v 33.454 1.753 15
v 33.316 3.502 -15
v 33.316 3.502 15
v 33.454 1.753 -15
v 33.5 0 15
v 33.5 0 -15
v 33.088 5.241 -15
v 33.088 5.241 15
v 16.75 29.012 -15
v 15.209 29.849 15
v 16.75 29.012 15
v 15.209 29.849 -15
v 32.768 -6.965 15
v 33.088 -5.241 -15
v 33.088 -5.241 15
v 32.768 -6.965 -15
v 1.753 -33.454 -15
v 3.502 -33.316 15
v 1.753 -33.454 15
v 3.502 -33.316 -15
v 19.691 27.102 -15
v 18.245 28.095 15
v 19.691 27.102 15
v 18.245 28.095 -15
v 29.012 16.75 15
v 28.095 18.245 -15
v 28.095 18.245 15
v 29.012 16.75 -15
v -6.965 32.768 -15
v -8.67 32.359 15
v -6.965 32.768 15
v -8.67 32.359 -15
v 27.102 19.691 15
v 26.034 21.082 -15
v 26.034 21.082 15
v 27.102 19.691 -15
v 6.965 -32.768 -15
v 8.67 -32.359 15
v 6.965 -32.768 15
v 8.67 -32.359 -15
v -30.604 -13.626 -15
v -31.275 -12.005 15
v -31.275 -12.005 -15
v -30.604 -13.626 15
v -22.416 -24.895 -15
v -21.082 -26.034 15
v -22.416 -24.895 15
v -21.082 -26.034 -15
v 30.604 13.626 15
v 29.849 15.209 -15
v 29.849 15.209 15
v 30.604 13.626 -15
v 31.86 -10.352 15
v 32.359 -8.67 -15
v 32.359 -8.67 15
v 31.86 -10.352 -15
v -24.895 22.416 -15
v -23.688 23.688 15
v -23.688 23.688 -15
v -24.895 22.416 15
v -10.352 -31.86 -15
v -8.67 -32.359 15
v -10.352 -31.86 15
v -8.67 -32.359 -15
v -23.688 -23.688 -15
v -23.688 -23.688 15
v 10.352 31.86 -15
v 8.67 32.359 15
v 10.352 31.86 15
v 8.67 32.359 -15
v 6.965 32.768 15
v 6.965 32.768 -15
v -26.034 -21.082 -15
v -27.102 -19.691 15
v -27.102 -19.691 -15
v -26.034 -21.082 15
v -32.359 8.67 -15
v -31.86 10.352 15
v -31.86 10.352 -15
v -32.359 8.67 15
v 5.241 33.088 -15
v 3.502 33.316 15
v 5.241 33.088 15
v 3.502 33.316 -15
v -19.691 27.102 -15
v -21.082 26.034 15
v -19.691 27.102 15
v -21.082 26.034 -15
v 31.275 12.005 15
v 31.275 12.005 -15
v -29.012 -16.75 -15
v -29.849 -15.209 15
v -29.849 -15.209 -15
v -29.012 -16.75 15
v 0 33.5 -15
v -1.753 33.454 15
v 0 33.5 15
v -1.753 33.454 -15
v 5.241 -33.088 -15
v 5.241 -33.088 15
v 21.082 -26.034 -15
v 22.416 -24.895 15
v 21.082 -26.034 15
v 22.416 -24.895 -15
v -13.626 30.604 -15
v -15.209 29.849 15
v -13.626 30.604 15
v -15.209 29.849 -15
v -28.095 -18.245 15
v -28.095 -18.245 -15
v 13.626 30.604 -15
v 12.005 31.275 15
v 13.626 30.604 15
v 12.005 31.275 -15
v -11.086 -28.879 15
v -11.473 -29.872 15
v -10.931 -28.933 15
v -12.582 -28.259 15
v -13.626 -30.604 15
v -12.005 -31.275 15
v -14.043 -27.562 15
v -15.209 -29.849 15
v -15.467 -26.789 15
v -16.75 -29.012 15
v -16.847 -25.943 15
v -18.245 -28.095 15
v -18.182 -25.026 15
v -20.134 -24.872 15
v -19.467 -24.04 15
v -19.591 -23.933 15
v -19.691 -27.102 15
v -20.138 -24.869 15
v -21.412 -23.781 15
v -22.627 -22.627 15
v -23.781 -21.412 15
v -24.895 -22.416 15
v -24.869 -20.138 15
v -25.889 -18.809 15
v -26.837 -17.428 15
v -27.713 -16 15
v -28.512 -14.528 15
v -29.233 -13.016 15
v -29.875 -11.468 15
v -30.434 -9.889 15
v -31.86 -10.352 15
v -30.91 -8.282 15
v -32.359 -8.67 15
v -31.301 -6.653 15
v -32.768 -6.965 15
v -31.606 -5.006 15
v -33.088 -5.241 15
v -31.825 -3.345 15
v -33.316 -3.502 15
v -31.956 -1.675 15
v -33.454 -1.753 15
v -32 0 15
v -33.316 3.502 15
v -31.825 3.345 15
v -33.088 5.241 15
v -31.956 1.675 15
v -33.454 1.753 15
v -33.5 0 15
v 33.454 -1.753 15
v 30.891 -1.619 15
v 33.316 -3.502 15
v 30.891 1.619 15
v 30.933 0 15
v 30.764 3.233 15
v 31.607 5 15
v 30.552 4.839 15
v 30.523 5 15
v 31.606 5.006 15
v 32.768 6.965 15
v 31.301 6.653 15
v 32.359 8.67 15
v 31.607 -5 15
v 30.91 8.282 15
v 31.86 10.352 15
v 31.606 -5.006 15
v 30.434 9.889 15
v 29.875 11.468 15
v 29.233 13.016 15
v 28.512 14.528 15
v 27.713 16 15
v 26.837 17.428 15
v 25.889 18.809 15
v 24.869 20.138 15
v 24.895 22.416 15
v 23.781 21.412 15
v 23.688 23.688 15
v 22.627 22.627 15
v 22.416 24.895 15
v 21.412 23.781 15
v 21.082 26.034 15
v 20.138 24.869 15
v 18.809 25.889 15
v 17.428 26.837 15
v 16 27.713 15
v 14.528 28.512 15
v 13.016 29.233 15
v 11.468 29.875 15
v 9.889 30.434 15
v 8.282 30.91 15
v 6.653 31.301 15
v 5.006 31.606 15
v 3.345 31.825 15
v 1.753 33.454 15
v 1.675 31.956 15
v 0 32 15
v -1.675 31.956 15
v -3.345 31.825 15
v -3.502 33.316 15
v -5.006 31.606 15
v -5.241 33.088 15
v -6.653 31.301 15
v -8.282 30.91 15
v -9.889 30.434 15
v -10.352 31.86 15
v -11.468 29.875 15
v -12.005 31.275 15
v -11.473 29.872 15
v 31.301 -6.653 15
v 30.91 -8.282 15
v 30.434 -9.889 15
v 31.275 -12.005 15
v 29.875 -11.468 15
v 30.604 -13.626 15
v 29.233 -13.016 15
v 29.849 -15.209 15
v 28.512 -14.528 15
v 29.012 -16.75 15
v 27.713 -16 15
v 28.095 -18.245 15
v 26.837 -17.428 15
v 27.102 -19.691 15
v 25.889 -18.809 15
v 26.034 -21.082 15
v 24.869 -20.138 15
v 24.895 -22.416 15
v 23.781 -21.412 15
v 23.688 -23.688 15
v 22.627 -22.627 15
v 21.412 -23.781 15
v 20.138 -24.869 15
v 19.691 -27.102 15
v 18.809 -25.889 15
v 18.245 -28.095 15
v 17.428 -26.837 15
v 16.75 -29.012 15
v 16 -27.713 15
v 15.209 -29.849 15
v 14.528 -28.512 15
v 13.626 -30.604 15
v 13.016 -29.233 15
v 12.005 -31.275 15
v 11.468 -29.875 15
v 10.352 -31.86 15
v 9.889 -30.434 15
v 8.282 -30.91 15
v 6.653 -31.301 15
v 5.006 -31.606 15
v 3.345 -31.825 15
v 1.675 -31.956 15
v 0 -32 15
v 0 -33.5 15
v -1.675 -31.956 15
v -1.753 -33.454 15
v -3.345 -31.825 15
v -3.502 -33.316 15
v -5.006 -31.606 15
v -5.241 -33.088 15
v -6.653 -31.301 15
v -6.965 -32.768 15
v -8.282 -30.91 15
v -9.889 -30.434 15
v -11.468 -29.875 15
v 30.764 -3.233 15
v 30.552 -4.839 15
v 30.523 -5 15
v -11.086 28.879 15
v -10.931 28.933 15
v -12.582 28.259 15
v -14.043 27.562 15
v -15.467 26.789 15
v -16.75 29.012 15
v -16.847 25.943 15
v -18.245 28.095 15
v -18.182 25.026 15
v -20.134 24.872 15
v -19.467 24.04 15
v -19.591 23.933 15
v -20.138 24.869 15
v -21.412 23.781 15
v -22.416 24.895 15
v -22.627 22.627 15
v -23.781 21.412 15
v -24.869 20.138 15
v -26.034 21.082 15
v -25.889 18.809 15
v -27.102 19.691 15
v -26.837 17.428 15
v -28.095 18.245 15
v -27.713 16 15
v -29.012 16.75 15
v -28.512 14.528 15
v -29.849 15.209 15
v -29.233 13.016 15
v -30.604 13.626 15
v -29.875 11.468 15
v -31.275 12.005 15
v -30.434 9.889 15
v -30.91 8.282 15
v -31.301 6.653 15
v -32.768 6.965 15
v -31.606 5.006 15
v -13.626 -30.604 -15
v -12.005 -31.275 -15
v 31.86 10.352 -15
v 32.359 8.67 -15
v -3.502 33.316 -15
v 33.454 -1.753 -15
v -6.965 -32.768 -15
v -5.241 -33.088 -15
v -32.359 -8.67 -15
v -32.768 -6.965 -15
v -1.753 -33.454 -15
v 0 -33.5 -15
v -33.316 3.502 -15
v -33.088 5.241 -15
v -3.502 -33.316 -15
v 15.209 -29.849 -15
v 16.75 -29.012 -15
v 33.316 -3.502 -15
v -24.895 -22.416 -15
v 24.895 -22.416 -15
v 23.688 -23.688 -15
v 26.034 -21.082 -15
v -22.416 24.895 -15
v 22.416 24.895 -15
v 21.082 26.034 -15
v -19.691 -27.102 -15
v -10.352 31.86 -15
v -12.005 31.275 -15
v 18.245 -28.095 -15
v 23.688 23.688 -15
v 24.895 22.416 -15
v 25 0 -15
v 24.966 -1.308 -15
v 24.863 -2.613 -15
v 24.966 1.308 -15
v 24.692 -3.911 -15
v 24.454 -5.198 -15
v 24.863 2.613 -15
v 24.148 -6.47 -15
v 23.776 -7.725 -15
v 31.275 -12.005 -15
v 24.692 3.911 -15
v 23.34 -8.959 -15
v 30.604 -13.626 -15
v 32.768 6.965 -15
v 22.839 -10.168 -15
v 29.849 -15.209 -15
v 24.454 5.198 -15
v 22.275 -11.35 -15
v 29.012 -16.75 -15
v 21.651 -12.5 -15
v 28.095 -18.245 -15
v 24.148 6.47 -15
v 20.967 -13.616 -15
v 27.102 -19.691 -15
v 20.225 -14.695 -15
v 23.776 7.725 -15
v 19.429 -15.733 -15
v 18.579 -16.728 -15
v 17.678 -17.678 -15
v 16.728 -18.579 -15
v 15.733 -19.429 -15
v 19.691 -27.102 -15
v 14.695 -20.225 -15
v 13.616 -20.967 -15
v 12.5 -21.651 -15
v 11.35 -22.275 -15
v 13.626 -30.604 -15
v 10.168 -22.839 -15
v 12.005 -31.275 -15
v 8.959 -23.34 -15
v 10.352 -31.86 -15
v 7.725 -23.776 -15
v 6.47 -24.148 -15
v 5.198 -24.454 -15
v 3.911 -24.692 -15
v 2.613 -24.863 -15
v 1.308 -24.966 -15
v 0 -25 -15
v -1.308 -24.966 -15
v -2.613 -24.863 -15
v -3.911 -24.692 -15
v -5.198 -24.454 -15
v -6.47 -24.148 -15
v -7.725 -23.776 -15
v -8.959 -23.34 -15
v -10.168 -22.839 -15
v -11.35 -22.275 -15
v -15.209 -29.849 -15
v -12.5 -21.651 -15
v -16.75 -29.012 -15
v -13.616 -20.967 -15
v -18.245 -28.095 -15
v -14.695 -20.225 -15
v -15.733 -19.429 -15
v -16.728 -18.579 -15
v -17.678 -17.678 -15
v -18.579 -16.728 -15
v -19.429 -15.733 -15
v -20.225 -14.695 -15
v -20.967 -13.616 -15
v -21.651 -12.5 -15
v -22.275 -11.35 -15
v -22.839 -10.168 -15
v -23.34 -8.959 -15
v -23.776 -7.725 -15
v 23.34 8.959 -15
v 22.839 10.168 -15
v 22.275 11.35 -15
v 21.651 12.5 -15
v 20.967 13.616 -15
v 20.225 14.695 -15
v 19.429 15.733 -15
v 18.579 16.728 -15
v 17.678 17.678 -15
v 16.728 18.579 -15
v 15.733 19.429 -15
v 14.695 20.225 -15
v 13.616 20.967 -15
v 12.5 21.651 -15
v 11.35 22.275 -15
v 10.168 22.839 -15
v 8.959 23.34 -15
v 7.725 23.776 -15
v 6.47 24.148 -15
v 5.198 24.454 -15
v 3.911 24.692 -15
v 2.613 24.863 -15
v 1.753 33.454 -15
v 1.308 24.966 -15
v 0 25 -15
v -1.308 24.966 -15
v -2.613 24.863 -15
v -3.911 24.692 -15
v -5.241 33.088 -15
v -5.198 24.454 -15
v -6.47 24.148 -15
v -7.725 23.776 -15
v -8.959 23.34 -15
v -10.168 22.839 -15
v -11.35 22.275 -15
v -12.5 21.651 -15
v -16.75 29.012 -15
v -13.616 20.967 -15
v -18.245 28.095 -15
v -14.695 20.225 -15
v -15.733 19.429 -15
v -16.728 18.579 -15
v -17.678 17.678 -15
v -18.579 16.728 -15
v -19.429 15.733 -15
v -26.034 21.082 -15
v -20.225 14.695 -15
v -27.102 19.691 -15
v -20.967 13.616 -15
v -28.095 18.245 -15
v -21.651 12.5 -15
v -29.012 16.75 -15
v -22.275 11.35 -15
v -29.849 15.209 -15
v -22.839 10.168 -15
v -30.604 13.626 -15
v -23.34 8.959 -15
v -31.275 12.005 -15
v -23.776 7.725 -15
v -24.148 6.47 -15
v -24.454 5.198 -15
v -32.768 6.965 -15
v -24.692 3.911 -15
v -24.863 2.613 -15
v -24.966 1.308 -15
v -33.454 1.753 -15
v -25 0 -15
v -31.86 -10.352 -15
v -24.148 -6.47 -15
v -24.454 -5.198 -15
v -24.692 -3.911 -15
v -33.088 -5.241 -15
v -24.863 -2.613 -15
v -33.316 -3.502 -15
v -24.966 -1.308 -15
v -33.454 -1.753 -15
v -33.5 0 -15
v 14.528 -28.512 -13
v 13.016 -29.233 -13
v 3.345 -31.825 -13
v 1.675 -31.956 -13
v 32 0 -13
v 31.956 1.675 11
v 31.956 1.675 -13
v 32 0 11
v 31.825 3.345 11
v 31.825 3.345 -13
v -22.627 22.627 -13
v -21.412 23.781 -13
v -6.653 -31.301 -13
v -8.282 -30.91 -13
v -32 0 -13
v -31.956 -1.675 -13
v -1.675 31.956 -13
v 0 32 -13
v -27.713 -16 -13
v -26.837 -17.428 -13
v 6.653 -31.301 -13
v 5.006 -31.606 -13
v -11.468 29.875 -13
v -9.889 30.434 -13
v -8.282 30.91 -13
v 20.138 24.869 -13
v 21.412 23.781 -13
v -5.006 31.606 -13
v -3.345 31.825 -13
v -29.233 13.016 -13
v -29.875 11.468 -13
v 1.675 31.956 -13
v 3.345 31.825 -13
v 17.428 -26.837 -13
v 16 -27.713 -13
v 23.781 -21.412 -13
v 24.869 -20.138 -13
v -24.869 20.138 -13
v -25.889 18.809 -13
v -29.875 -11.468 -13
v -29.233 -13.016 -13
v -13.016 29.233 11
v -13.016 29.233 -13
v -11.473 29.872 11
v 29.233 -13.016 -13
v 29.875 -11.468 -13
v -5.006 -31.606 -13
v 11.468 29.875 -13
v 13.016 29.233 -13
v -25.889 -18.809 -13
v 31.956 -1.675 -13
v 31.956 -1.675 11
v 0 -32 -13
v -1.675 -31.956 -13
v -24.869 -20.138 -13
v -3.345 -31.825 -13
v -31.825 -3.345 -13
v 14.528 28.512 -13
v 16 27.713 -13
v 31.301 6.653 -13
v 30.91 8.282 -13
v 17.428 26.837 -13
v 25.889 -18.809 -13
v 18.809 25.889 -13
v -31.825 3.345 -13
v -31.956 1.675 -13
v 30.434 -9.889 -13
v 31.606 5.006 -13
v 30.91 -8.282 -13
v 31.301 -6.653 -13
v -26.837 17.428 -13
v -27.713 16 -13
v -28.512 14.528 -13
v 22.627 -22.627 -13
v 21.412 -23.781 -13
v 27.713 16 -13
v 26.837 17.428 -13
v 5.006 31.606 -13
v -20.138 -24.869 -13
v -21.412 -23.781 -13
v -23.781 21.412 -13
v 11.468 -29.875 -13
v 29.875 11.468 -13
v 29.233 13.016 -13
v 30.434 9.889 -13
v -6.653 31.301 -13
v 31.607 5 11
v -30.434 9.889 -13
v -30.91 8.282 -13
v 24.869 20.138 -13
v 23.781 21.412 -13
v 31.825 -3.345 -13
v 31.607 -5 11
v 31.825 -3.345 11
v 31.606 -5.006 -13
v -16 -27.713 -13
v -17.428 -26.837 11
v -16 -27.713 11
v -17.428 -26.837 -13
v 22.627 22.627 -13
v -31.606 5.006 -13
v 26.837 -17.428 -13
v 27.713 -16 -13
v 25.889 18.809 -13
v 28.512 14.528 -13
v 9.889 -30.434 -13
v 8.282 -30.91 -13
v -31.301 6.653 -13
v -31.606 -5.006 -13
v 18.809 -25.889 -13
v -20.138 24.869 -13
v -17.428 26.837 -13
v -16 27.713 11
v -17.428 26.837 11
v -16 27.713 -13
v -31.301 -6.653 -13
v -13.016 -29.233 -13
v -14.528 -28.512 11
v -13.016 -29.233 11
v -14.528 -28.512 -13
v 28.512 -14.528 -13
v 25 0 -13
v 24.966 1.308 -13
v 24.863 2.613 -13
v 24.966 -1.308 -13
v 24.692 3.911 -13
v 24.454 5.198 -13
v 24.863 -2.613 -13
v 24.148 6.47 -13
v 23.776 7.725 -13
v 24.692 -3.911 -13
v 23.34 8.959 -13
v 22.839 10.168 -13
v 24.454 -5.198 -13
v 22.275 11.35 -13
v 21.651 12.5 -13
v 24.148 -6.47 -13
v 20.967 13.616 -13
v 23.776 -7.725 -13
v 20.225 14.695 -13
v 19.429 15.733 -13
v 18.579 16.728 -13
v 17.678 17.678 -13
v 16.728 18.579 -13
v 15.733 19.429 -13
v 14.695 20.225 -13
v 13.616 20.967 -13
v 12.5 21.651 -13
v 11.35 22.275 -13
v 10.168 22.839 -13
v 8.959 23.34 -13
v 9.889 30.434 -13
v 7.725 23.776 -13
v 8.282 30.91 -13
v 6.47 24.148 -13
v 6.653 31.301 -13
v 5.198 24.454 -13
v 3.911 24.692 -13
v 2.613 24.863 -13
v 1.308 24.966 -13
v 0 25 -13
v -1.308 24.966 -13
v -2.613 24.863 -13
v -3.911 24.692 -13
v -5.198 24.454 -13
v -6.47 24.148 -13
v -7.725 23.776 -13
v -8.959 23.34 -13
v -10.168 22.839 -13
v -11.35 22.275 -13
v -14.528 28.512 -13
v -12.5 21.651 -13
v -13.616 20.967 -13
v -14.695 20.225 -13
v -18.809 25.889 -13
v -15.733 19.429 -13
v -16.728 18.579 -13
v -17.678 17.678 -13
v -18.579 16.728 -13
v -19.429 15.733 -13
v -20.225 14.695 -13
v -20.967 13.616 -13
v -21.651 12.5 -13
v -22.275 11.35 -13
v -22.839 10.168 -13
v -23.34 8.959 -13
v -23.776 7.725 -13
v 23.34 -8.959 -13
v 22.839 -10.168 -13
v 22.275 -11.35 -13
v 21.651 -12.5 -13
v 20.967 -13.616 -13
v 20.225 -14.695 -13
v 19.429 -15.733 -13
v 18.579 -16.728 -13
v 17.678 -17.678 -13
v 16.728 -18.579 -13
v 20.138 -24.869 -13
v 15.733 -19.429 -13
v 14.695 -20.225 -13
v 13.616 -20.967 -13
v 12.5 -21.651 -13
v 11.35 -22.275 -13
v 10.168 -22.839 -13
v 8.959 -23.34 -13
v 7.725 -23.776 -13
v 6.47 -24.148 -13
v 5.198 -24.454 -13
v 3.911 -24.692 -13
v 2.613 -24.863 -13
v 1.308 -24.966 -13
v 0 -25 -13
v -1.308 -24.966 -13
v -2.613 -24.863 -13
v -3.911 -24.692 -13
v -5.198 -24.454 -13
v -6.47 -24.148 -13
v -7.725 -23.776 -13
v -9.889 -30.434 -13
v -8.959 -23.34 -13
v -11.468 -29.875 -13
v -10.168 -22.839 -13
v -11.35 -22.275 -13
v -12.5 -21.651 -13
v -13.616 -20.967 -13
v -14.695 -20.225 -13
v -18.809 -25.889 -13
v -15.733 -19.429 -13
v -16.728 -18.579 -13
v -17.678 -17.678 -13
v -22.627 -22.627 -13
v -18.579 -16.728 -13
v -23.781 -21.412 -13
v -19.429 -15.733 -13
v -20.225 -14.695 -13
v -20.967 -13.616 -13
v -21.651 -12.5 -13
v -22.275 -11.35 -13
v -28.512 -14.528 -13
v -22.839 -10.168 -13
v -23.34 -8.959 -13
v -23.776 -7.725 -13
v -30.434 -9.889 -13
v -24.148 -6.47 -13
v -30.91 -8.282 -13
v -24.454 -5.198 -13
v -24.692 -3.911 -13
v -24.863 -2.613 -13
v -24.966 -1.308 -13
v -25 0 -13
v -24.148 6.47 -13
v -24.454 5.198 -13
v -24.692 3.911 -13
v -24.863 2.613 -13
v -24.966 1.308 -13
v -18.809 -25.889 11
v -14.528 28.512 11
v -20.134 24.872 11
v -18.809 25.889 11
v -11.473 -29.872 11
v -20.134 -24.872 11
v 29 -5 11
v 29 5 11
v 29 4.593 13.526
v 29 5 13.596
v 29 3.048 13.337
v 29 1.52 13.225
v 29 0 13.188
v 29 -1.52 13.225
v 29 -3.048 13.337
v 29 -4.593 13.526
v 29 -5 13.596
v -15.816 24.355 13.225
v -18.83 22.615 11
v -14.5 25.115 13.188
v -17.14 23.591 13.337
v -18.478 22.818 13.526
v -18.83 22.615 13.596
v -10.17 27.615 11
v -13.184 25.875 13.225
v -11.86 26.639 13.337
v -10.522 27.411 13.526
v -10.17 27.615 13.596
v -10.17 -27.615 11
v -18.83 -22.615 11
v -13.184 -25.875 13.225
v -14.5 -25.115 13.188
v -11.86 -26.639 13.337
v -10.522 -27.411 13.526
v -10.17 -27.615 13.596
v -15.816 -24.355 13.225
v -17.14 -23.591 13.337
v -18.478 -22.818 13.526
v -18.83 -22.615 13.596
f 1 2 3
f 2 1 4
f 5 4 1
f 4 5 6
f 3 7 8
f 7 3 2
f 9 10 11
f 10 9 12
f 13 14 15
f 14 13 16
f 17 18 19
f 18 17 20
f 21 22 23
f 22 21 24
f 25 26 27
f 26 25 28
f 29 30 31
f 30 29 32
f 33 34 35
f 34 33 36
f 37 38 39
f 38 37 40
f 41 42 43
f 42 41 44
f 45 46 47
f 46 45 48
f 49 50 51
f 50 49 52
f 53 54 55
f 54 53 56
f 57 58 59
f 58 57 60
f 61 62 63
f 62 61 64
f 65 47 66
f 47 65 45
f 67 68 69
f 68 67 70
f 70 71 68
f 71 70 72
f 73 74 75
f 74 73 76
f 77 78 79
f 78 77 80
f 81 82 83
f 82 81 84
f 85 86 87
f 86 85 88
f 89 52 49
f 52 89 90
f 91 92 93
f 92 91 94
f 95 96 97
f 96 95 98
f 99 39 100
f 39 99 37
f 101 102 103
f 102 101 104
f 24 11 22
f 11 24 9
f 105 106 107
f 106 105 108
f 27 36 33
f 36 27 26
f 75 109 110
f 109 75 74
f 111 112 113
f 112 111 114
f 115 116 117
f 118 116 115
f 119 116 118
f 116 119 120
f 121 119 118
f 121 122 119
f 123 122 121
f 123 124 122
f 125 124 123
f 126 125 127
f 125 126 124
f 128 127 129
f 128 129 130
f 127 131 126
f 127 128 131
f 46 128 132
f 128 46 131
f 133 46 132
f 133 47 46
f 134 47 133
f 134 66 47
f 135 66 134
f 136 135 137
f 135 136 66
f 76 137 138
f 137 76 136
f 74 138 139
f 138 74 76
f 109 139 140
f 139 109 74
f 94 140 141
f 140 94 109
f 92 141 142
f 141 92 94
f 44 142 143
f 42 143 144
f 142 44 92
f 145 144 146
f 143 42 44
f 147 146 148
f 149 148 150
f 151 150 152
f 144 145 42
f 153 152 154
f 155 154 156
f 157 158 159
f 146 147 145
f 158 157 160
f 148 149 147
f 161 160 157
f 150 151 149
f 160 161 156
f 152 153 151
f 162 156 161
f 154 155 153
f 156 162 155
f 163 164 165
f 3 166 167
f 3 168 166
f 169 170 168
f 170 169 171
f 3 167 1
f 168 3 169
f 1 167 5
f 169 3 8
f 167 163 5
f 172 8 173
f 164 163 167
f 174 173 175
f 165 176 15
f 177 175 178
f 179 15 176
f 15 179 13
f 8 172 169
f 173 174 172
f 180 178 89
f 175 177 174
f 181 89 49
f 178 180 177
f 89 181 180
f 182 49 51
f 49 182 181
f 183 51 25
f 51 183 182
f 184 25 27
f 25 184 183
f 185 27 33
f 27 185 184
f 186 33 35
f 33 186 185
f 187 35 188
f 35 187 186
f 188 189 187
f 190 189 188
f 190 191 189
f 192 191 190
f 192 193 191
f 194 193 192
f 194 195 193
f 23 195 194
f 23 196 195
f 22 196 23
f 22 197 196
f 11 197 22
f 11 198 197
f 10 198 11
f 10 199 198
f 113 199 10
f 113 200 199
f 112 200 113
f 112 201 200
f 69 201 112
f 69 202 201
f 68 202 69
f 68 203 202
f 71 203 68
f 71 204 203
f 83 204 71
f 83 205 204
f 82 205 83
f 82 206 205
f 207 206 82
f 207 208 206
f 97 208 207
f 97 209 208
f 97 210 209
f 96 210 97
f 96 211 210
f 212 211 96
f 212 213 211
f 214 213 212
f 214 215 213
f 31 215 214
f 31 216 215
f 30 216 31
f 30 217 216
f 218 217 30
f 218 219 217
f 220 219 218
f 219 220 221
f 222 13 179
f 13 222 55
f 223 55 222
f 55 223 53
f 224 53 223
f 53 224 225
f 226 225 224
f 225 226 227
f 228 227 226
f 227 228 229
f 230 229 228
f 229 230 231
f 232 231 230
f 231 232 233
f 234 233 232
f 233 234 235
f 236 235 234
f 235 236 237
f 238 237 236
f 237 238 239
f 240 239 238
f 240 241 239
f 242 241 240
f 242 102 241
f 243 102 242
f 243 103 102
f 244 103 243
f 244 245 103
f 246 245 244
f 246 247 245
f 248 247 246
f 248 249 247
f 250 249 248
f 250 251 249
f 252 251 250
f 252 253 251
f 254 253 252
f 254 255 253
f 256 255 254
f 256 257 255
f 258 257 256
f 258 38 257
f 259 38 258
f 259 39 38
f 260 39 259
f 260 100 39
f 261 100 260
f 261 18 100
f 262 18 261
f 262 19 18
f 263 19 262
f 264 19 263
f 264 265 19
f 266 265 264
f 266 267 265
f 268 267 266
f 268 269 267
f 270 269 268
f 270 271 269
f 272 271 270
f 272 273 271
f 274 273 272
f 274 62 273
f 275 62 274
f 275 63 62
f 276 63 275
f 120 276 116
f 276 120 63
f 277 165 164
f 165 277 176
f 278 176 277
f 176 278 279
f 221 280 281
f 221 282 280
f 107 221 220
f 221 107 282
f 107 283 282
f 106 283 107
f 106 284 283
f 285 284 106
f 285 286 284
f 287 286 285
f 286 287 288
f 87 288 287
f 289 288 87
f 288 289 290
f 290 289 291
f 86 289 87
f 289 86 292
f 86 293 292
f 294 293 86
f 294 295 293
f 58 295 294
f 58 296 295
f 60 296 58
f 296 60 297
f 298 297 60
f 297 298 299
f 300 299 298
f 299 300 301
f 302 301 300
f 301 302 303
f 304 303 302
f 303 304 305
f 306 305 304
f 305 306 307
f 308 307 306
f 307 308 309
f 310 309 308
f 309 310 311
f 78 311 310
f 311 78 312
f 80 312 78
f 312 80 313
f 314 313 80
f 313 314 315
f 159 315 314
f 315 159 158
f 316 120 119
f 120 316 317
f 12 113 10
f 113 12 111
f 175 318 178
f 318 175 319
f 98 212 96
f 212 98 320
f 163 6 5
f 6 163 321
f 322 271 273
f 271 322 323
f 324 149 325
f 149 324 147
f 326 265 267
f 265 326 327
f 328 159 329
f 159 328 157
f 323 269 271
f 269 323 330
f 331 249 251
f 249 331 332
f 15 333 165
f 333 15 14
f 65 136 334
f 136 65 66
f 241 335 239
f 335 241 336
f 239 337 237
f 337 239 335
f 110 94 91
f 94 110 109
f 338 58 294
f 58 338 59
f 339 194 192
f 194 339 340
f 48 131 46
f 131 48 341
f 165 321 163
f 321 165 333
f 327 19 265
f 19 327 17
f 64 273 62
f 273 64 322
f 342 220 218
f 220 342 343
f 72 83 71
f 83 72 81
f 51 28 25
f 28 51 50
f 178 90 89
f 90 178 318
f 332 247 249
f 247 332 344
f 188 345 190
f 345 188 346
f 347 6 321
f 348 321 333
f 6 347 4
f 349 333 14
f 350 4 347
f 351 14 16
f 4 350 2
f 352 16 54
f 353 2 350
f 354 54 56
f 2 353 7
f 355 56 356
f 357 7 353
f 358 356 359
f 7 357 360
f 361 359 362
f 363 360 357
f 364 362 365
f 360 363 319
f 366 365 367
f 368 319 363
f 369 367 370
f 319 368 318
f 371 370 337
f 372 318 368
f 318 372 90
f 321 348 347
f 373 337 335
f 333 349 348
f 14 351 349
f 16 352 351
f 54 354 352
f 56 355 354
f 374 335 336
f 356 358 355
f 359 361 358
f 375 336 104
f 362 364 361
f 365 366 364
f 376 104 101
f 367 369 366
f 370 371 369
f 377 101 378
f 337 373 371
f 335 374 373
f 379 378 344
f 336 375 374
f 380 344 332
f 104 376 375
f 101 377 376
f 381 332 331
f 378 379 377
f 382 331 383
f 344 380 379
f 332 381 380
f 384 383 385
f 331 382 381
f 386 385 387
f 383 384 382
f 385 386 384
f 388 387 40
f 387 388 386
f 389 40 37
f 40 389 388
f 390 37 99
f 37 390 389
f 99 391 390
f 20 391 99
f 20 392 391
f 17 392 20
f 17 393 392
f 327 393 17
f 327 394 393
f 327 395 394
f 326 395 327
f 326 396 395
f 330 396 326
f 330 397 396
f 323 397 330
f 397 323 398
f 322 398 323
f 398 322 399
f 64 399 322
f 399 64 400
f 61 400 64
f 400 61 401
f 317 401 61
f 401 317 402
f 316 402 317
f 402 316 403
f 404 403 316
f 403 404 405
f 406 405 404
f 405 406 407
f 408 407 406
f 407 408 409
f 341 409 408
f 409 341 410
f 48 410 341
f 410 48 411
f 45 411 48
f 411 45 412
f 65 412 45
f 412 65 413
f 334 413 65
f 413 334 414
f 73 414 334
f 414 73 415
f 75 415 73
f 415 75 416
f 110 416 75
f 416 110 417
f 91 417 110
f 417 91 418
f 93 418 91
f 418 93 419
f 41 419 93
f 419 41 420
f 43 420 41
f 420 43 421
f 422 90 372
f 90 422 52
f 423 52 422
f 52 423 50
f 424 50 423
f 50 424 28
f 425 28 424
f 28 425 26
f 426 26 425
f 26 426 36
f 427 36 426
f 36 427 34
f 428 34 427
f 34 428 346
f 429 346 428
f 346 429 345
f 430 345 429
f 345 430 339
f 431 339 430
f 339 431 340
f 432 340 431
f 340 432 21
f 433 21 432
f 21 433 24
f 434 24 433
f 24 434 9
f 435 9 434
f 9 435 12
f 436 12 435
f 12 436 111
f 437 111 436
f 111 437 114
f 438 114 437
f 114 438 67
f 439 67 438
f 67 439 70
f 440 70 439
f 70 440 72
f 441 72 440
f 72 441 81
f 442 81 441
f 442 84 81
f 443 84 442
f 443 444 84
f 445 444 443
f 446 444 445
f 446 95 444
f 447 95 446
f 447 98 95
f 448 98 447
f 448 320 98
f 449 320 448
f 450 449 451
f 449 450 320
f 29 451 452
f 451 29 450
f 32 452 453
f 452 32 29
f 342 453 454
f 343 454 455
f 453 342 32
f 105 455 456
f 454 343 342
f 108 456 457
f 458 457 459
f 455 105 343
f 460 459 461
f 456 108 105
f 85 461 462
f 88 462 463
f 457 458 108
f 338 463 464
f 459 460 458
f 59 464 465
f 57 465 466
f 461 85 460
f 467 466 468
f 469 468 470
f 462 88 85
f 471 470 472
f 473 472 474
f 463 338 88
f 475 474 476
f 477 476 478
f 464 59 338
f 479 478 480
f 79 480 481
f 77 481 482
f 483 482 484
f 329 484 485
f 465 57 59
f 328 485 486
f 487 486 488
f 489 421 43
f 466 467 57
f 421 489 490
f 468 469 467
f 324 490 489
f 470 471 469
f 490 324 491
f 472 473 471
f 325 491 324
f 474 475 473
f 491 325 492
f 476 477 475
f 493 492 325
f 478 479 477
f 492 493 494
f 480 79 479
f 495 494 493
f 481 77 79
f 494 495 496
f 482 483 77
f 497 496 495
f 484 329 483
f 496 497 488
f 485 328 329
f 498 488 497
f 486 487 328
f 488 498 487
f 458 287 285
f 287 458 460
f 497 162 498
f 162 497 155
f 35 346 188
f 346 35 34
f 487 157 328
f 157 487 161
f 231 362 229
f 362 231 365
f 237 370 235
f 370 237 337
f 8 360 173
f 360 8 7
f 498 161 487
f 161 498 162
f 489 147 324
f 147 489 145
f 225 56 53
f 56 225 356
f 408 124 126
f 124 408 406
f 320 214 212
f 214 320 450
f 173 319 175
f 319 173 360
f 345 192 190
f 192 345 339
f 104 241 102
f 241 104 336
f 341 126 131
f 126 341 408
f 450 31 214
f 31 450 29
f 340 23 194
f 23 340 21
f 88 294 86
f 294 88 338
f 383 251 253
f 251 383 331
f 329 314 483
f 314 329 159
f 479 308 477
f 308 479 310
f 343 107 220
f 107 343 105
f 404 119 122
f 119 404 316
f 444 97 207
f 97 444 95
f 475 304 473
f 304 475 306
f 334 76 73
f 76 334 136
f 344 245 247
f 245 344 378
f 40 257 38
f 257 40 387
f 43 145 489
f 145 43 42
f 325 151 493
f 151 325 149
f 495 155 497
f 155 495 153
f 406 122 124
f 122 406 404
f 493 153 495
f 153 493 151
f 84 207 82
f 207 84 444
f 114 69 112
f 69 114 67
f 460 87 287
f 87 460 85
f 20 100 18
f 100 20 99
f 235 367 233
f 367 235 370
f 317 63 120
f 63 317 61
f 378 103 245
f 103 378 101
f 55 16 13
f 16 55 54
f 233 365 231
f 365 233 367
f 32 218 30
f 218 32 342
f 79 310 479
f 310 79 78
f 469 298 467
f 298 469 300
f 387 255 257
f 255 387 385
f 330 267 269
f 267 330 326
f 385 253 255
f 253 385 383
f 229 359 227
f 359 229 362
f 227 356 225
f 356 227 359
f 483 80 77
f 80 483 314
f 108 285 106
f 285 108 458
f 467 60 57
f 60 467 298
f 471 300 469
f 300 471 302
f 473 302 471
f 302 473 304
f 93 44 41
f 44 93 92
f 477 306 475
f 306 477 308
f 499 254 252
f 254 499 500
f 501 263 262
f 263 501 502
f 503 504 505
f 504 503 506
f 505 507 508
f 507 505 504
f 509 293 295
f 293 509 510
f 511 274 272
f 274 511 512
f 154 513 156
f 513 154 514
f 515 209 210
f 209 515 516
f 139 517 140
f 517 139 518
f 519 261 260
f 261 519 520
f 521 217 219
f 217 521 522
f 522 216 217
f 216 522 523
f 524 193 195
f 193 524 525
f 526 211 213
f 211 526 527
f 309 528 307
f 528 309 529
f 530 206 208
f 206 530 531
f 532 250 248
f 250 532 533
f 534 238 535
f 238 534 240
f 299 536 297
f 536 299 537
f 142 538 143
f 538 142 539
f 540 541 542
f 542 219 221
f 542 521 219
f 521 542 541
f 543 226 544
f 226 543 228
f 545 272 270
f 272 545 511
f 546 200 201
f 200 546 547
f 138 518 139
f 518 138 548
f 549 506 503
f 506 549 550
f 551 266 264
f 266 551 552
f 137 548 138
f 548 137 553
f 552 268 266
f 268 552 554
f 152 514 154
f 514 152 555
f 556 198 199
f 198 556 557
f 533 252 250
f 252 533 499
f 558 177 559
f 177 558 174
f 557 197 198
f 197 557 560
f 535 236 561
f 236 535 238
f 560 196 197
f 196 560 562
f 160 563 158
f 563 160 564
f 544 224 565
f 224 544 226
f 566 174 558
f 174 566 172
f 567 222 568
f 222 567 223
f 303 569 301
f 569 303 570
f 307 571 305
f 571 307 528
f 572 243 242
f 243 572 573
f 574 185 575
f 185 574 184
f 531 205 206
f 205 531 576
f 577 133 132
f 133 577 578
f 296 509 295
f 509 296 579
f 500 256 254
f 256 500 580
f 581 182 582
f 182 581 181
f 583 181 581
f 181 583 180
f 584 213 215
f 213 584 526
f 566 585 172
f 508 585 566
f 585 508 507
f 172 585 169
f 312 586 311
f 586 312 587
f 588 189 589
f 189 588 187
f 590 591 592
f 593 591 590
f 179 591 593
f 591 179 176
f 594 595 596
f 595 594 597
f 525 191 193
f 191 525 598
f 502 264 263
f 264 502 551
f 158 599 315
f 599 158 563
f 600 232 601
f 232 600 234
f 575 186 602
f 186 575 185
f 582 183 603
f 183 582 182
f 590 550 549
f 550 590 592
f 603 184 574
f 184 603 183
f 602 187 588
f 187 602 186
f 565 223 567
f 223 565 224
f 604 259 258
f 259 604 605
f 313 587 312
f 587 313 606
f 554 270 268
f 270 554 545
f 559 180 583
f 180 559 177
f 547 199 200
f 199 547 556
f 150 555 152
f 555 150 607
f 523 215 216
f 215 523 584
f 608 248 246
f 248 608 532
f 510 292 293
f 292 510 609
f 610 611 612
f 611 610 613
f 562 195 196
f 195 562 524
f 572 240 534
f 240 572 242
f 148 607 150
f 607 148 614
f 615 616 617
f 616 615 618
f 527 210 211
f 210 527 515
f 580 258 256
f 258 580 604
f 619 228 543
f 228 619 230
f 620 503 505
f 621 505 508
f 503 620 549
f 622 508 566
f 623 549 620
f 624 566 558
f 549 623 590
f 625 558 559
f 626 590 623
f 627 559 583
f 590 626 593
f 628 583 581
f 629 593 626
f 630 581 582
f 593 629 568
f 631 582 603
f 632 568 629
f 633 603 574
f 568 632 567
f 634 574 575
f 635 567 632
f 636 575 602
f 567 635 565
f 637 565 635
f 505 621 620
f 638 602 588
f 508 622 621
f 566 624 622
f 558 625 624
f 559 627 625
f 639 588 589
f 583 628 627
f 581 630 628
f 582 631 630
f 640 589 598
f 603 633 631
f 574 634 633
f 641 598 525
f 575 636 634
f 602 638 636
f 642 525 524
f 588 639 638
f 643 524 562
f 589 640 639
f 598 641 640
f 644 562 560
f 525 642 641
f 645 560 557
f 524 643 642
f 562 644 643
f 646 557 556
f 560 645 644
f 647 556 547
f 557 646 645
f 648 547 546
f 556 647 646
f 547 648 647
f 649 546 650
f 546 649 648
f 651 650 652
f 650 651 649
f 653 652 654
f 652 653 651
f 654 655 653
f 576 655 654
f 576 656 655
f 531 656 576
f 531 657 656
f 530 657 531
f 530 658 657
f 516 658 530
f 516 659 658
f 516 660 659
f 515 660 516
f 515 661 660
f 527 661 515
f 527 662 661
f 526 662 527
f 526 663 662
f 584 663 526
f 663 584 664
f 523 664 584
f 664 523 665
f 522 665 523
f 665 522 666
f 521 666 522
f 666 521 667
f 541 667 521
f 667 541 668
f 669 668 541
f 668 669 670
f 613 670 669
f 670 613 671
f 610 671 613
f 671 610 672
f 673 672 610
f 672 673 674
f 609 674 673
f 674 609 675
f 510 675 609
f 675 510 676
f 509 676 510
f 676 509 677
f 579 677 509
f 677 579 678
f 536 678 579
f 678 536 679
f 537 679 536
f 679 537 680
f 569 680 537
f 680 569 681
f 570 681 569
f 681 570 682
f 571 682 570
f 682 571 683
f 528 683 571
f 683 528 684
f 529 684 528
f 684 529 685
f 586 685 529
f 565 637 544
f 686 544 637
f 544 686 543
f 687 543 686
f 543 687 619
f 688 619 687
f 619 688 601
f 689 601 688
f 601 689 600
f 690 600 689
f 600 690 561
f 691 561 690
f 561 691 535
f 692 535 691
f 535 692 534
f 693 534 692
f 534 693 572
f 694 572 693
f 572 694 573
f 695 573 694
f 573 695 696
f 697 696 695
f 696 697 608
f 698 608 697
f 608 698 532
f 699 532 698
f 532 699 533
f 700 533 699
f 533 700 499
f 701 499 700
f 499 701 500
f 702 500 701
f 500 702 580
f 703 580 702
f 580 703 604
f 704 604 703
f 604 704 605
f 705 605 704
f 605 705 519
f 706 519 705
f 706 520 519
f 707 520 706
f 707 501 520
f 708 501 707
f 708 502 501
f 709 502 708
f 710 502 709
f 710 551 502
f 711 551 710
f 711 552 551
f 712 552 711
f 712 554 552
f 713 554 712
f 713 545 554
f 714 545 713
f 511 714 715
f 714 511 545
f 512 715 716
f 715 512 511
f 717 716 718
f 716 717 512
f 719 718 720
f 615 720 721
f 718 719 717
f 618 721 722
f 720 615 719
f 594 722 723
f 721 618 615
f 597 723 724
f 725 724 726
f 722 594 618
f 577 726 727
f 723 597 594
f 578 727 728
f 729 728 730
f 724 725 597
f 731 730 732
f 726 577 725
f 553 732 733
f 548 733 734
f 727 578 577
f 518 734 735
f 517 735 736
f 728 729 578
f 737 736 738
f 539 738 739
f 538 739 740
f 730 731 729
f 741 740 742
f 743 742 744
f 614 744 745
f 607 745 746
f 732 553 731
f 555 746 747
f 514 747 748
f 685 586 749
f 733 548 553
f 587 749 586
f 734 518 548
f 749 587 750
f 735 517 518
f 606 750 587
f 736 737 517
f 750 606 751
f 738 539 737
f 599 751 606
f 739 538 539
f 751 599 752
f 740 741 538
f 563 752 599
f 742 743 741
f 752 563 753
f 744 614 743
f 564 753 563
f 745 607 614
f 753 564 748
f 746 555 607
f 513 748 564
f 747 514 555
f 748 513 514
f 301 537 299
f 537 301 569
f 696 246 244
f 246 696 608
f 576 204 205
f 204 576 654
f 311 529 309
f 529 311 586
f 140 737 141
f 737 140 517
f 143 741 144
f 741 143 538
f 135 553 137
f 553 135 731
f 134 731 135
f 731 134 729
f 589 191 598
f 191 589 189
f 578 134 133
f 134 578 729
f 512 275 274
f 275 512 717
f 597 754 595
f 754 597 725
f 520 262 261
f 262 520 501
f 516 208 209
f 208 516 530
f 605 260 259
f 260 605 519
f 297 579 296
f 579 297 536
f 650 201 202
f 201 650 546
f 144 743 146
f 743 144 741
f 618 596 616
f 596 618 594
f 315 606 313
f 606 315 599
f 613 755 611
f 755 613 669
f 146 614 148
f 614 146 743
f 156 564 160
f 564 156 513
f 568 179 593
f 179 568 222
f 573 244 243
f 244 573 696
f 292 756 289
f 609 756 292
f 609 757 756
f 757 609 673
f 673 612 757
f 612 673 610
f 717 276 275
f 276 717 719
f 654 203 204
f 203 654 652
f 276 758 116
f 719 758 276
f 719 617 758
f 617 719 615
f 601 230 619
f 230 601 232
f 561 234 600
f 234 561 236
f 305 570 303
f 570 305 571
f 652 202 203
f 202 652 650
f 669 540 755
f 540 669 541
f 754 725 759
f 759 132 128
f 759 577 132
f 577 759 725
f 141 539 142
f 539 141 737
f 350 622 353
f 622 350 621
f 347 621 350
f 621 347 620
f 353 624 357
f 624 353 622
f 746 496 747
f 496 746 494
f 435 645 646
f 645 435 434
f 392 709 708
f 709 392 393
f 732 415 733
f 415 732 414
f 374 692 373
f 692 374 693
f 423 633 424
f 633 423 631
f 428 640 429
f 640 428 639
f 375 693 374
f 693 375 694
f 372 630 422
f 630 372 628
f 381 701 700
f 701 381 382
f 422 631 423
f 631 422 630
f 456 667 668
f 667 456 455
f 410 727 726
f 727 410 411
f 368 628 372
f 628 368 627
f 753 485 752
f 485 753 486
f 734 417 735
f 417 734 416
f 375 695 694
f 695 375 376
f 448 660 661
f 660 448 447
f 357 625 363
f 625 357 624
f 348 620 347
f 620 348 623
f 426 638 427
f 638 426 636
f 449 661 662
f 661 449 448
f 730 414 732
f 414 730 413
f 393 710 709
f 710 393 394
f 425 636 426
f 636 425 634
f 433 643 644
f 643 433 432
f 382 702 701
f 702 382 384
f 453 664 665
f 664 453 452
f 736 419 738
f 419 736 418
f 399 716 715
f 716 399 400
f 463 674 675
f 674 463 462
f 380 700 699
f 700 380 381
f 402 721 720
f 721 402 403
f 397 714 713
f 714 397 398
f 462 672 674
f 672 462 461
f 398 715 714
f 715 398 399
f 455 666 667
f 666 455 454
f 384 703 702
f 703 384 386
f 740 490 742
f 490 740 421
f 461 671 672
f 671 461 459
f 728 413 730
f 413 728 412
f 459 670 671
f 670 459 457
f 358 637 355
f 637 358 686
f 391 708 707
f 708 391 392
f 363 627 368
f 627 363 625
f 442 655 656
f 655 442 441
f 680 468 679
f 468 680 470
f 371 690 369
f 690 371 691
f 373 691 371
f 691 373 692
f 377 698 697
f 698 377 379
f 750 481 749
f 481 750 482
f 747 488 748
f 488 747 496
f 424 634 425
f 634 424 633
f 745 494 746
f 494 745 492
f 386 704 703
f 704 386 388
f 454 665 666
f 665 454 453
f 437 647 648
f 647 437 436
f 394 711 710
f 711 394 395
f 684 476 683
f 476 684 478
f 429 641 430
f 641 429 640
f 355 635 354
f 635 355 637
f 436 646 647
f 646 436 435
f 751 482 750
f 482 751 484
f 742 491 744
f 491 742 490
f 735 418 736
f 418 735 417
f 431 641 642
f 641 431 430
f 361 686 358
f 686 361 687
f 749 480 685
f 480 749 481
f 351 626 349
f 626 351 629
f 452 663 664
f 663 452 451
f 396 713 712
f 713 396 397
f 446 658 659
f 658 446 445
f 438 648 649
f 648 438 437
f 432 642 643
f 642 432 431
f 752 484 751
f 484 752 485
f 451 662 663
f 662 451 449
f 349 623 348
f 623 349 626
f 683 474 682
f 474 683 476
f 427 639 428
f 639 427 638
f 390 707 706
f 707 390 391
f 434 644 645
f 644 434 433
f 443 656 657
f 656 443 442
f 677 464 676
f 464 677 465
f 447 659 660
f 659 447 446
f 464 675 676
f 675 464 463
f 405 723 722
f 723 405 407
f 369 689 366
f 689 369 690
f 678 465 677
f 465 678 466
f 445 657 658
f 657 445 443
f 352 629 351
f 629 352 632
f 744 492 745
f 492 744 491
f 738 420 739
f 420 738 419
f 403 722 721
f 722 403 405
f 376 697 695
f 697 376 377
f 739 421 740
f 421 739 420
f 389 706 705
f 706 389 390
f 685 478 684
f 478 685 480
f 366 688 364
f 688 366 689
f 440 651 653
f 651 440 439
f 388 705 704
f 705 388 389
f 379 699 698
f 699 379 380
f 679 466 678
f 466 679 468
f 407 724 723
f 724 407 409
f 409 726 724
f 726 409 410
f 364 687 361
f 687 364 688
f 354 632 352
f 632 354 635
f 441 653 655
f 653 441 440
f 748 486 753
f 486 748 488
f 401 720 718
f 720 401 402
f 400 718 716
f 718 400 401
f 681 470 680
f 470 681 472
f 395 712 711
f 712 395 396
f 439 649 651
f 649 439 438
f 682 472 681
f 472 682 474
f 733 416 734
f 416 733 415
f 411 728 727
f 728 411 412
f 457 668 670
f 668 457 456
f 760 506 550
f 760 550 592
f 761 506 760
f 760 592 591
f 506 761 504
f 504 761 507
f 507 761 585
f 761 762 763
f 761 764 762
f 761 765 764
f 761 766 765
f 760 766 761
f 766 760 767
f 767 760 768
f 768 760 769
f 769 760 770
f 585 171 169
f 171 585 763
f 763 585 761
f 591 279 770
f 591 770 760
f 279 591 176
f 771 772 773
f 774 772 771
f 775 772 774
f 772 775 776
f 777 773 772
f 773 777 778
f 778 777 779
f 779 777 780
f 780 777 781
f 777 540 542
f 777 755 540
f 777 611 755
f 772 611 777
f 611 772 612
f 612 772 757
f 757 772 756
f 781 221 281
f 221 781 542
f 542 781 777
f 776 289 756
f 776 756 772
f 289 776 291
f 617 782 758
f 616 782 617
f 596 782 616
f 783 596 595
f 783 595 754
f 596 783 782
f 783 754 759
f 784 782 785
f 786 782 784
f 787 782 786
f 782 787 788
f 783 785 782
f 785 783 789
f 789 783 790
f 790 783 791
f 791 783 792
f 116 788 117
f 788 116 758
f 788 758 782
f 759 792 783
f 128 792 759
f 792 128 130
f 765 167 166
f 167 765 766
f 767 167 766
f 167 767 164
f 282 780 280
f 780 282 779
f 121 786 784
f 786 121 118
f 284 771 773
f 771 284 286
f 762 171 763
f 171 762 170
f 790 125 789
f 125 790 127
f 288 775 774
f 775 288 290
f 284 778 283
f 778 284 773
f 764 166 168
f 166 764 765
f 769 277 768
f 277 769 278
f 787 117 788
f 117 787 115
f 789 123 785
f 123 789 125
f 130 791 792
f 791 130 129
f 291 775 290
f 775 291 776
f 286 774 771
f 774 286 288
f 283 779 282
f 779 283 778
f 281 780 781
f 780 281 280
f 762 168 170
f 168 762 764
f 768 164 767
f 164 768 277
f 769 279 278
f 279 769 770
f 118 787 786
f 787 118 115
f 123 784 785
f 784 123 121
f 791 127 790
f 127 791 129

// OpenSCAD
wall_thickness =1.50;
pipe_diameter = 64.0;
pipe_connector_height = 30.0;

main_pipe_diameter =150;
$fn=120;

cutout_height =15;

module pipe_connector() {
    
//    rotate_extrude( angle=45)
//translate([75,0,0])
//square([wall_thickness,70], center=true);
    
union(){
   
difference() {
     
      union(){
    
       cylinder(h=pipe_connector_height, d=pipe_diameter+2*wall_thickness, center=true);
      }
        translate([0,0,2])
      cylinder(h=pipe_connector_height, d=pipe_diameter, center = true);
       cylinder(h=pipe_connector_height*3, d=50, center = true);
      
//        translate([0,0,pipe_connector_height/2-cutout_height/2+0.01])
//            cutouts(height= cutout_height,pitch_circle_diameter=pipe_diameter);
      
    }
     


//translate([0,0,main_pipe_diameter/2])    
//    
//rotate([90,0,0]){
//    difference() {
//      union(){
//        cylinder(h=pipe_connector_height*3, d=main_pipe_diameter+2*wall_thickness, center=true);
//      }
//        
//        cylinder(h=pipe_connector_height*4, d=main_pipe_diameter, center = true);
//        
//    }
//}

}
difference(){
 translate([0,0,pipe_connector_height/2-2])
            connections(pitch_circle_diameter=pipe_diameter);
translate([0,0,1])
      cylinder(h=pipe_connector_height, d1=0, d2=pipe_diameter, center = true);
}
}



module connections(thickness=4,width=10, nr=3,pitch_circle_diameter =10, start_angle=0 ){
    angle= 360/nr;
    for (i = [ 0 : (nr-1)  ]) {
        rotate(start_angle+i*angle){            
    translate([pitch_circle_diameter/2-thickness/2+1,0,0]){
        cube([thickness,width,thickness], center=true);
    }
}
}
}
module cutouts(thickness=1,height=20, nr=4,pitch_circle_diameter =10, start_angle=0 ){
    angle= 360/nr;
    for (i = [ 0 : (nr-1)  ]) {
        rotate(start_angle+i*angle){
 translate([5,0,0]){            
        cube([thickness,1000,height], center=true);
 }
 translate([-5,0,0]){            
        cube([thickness,1000,height], center=true);
 }
            
            
    
}
}
}

pipe_connector();

    
